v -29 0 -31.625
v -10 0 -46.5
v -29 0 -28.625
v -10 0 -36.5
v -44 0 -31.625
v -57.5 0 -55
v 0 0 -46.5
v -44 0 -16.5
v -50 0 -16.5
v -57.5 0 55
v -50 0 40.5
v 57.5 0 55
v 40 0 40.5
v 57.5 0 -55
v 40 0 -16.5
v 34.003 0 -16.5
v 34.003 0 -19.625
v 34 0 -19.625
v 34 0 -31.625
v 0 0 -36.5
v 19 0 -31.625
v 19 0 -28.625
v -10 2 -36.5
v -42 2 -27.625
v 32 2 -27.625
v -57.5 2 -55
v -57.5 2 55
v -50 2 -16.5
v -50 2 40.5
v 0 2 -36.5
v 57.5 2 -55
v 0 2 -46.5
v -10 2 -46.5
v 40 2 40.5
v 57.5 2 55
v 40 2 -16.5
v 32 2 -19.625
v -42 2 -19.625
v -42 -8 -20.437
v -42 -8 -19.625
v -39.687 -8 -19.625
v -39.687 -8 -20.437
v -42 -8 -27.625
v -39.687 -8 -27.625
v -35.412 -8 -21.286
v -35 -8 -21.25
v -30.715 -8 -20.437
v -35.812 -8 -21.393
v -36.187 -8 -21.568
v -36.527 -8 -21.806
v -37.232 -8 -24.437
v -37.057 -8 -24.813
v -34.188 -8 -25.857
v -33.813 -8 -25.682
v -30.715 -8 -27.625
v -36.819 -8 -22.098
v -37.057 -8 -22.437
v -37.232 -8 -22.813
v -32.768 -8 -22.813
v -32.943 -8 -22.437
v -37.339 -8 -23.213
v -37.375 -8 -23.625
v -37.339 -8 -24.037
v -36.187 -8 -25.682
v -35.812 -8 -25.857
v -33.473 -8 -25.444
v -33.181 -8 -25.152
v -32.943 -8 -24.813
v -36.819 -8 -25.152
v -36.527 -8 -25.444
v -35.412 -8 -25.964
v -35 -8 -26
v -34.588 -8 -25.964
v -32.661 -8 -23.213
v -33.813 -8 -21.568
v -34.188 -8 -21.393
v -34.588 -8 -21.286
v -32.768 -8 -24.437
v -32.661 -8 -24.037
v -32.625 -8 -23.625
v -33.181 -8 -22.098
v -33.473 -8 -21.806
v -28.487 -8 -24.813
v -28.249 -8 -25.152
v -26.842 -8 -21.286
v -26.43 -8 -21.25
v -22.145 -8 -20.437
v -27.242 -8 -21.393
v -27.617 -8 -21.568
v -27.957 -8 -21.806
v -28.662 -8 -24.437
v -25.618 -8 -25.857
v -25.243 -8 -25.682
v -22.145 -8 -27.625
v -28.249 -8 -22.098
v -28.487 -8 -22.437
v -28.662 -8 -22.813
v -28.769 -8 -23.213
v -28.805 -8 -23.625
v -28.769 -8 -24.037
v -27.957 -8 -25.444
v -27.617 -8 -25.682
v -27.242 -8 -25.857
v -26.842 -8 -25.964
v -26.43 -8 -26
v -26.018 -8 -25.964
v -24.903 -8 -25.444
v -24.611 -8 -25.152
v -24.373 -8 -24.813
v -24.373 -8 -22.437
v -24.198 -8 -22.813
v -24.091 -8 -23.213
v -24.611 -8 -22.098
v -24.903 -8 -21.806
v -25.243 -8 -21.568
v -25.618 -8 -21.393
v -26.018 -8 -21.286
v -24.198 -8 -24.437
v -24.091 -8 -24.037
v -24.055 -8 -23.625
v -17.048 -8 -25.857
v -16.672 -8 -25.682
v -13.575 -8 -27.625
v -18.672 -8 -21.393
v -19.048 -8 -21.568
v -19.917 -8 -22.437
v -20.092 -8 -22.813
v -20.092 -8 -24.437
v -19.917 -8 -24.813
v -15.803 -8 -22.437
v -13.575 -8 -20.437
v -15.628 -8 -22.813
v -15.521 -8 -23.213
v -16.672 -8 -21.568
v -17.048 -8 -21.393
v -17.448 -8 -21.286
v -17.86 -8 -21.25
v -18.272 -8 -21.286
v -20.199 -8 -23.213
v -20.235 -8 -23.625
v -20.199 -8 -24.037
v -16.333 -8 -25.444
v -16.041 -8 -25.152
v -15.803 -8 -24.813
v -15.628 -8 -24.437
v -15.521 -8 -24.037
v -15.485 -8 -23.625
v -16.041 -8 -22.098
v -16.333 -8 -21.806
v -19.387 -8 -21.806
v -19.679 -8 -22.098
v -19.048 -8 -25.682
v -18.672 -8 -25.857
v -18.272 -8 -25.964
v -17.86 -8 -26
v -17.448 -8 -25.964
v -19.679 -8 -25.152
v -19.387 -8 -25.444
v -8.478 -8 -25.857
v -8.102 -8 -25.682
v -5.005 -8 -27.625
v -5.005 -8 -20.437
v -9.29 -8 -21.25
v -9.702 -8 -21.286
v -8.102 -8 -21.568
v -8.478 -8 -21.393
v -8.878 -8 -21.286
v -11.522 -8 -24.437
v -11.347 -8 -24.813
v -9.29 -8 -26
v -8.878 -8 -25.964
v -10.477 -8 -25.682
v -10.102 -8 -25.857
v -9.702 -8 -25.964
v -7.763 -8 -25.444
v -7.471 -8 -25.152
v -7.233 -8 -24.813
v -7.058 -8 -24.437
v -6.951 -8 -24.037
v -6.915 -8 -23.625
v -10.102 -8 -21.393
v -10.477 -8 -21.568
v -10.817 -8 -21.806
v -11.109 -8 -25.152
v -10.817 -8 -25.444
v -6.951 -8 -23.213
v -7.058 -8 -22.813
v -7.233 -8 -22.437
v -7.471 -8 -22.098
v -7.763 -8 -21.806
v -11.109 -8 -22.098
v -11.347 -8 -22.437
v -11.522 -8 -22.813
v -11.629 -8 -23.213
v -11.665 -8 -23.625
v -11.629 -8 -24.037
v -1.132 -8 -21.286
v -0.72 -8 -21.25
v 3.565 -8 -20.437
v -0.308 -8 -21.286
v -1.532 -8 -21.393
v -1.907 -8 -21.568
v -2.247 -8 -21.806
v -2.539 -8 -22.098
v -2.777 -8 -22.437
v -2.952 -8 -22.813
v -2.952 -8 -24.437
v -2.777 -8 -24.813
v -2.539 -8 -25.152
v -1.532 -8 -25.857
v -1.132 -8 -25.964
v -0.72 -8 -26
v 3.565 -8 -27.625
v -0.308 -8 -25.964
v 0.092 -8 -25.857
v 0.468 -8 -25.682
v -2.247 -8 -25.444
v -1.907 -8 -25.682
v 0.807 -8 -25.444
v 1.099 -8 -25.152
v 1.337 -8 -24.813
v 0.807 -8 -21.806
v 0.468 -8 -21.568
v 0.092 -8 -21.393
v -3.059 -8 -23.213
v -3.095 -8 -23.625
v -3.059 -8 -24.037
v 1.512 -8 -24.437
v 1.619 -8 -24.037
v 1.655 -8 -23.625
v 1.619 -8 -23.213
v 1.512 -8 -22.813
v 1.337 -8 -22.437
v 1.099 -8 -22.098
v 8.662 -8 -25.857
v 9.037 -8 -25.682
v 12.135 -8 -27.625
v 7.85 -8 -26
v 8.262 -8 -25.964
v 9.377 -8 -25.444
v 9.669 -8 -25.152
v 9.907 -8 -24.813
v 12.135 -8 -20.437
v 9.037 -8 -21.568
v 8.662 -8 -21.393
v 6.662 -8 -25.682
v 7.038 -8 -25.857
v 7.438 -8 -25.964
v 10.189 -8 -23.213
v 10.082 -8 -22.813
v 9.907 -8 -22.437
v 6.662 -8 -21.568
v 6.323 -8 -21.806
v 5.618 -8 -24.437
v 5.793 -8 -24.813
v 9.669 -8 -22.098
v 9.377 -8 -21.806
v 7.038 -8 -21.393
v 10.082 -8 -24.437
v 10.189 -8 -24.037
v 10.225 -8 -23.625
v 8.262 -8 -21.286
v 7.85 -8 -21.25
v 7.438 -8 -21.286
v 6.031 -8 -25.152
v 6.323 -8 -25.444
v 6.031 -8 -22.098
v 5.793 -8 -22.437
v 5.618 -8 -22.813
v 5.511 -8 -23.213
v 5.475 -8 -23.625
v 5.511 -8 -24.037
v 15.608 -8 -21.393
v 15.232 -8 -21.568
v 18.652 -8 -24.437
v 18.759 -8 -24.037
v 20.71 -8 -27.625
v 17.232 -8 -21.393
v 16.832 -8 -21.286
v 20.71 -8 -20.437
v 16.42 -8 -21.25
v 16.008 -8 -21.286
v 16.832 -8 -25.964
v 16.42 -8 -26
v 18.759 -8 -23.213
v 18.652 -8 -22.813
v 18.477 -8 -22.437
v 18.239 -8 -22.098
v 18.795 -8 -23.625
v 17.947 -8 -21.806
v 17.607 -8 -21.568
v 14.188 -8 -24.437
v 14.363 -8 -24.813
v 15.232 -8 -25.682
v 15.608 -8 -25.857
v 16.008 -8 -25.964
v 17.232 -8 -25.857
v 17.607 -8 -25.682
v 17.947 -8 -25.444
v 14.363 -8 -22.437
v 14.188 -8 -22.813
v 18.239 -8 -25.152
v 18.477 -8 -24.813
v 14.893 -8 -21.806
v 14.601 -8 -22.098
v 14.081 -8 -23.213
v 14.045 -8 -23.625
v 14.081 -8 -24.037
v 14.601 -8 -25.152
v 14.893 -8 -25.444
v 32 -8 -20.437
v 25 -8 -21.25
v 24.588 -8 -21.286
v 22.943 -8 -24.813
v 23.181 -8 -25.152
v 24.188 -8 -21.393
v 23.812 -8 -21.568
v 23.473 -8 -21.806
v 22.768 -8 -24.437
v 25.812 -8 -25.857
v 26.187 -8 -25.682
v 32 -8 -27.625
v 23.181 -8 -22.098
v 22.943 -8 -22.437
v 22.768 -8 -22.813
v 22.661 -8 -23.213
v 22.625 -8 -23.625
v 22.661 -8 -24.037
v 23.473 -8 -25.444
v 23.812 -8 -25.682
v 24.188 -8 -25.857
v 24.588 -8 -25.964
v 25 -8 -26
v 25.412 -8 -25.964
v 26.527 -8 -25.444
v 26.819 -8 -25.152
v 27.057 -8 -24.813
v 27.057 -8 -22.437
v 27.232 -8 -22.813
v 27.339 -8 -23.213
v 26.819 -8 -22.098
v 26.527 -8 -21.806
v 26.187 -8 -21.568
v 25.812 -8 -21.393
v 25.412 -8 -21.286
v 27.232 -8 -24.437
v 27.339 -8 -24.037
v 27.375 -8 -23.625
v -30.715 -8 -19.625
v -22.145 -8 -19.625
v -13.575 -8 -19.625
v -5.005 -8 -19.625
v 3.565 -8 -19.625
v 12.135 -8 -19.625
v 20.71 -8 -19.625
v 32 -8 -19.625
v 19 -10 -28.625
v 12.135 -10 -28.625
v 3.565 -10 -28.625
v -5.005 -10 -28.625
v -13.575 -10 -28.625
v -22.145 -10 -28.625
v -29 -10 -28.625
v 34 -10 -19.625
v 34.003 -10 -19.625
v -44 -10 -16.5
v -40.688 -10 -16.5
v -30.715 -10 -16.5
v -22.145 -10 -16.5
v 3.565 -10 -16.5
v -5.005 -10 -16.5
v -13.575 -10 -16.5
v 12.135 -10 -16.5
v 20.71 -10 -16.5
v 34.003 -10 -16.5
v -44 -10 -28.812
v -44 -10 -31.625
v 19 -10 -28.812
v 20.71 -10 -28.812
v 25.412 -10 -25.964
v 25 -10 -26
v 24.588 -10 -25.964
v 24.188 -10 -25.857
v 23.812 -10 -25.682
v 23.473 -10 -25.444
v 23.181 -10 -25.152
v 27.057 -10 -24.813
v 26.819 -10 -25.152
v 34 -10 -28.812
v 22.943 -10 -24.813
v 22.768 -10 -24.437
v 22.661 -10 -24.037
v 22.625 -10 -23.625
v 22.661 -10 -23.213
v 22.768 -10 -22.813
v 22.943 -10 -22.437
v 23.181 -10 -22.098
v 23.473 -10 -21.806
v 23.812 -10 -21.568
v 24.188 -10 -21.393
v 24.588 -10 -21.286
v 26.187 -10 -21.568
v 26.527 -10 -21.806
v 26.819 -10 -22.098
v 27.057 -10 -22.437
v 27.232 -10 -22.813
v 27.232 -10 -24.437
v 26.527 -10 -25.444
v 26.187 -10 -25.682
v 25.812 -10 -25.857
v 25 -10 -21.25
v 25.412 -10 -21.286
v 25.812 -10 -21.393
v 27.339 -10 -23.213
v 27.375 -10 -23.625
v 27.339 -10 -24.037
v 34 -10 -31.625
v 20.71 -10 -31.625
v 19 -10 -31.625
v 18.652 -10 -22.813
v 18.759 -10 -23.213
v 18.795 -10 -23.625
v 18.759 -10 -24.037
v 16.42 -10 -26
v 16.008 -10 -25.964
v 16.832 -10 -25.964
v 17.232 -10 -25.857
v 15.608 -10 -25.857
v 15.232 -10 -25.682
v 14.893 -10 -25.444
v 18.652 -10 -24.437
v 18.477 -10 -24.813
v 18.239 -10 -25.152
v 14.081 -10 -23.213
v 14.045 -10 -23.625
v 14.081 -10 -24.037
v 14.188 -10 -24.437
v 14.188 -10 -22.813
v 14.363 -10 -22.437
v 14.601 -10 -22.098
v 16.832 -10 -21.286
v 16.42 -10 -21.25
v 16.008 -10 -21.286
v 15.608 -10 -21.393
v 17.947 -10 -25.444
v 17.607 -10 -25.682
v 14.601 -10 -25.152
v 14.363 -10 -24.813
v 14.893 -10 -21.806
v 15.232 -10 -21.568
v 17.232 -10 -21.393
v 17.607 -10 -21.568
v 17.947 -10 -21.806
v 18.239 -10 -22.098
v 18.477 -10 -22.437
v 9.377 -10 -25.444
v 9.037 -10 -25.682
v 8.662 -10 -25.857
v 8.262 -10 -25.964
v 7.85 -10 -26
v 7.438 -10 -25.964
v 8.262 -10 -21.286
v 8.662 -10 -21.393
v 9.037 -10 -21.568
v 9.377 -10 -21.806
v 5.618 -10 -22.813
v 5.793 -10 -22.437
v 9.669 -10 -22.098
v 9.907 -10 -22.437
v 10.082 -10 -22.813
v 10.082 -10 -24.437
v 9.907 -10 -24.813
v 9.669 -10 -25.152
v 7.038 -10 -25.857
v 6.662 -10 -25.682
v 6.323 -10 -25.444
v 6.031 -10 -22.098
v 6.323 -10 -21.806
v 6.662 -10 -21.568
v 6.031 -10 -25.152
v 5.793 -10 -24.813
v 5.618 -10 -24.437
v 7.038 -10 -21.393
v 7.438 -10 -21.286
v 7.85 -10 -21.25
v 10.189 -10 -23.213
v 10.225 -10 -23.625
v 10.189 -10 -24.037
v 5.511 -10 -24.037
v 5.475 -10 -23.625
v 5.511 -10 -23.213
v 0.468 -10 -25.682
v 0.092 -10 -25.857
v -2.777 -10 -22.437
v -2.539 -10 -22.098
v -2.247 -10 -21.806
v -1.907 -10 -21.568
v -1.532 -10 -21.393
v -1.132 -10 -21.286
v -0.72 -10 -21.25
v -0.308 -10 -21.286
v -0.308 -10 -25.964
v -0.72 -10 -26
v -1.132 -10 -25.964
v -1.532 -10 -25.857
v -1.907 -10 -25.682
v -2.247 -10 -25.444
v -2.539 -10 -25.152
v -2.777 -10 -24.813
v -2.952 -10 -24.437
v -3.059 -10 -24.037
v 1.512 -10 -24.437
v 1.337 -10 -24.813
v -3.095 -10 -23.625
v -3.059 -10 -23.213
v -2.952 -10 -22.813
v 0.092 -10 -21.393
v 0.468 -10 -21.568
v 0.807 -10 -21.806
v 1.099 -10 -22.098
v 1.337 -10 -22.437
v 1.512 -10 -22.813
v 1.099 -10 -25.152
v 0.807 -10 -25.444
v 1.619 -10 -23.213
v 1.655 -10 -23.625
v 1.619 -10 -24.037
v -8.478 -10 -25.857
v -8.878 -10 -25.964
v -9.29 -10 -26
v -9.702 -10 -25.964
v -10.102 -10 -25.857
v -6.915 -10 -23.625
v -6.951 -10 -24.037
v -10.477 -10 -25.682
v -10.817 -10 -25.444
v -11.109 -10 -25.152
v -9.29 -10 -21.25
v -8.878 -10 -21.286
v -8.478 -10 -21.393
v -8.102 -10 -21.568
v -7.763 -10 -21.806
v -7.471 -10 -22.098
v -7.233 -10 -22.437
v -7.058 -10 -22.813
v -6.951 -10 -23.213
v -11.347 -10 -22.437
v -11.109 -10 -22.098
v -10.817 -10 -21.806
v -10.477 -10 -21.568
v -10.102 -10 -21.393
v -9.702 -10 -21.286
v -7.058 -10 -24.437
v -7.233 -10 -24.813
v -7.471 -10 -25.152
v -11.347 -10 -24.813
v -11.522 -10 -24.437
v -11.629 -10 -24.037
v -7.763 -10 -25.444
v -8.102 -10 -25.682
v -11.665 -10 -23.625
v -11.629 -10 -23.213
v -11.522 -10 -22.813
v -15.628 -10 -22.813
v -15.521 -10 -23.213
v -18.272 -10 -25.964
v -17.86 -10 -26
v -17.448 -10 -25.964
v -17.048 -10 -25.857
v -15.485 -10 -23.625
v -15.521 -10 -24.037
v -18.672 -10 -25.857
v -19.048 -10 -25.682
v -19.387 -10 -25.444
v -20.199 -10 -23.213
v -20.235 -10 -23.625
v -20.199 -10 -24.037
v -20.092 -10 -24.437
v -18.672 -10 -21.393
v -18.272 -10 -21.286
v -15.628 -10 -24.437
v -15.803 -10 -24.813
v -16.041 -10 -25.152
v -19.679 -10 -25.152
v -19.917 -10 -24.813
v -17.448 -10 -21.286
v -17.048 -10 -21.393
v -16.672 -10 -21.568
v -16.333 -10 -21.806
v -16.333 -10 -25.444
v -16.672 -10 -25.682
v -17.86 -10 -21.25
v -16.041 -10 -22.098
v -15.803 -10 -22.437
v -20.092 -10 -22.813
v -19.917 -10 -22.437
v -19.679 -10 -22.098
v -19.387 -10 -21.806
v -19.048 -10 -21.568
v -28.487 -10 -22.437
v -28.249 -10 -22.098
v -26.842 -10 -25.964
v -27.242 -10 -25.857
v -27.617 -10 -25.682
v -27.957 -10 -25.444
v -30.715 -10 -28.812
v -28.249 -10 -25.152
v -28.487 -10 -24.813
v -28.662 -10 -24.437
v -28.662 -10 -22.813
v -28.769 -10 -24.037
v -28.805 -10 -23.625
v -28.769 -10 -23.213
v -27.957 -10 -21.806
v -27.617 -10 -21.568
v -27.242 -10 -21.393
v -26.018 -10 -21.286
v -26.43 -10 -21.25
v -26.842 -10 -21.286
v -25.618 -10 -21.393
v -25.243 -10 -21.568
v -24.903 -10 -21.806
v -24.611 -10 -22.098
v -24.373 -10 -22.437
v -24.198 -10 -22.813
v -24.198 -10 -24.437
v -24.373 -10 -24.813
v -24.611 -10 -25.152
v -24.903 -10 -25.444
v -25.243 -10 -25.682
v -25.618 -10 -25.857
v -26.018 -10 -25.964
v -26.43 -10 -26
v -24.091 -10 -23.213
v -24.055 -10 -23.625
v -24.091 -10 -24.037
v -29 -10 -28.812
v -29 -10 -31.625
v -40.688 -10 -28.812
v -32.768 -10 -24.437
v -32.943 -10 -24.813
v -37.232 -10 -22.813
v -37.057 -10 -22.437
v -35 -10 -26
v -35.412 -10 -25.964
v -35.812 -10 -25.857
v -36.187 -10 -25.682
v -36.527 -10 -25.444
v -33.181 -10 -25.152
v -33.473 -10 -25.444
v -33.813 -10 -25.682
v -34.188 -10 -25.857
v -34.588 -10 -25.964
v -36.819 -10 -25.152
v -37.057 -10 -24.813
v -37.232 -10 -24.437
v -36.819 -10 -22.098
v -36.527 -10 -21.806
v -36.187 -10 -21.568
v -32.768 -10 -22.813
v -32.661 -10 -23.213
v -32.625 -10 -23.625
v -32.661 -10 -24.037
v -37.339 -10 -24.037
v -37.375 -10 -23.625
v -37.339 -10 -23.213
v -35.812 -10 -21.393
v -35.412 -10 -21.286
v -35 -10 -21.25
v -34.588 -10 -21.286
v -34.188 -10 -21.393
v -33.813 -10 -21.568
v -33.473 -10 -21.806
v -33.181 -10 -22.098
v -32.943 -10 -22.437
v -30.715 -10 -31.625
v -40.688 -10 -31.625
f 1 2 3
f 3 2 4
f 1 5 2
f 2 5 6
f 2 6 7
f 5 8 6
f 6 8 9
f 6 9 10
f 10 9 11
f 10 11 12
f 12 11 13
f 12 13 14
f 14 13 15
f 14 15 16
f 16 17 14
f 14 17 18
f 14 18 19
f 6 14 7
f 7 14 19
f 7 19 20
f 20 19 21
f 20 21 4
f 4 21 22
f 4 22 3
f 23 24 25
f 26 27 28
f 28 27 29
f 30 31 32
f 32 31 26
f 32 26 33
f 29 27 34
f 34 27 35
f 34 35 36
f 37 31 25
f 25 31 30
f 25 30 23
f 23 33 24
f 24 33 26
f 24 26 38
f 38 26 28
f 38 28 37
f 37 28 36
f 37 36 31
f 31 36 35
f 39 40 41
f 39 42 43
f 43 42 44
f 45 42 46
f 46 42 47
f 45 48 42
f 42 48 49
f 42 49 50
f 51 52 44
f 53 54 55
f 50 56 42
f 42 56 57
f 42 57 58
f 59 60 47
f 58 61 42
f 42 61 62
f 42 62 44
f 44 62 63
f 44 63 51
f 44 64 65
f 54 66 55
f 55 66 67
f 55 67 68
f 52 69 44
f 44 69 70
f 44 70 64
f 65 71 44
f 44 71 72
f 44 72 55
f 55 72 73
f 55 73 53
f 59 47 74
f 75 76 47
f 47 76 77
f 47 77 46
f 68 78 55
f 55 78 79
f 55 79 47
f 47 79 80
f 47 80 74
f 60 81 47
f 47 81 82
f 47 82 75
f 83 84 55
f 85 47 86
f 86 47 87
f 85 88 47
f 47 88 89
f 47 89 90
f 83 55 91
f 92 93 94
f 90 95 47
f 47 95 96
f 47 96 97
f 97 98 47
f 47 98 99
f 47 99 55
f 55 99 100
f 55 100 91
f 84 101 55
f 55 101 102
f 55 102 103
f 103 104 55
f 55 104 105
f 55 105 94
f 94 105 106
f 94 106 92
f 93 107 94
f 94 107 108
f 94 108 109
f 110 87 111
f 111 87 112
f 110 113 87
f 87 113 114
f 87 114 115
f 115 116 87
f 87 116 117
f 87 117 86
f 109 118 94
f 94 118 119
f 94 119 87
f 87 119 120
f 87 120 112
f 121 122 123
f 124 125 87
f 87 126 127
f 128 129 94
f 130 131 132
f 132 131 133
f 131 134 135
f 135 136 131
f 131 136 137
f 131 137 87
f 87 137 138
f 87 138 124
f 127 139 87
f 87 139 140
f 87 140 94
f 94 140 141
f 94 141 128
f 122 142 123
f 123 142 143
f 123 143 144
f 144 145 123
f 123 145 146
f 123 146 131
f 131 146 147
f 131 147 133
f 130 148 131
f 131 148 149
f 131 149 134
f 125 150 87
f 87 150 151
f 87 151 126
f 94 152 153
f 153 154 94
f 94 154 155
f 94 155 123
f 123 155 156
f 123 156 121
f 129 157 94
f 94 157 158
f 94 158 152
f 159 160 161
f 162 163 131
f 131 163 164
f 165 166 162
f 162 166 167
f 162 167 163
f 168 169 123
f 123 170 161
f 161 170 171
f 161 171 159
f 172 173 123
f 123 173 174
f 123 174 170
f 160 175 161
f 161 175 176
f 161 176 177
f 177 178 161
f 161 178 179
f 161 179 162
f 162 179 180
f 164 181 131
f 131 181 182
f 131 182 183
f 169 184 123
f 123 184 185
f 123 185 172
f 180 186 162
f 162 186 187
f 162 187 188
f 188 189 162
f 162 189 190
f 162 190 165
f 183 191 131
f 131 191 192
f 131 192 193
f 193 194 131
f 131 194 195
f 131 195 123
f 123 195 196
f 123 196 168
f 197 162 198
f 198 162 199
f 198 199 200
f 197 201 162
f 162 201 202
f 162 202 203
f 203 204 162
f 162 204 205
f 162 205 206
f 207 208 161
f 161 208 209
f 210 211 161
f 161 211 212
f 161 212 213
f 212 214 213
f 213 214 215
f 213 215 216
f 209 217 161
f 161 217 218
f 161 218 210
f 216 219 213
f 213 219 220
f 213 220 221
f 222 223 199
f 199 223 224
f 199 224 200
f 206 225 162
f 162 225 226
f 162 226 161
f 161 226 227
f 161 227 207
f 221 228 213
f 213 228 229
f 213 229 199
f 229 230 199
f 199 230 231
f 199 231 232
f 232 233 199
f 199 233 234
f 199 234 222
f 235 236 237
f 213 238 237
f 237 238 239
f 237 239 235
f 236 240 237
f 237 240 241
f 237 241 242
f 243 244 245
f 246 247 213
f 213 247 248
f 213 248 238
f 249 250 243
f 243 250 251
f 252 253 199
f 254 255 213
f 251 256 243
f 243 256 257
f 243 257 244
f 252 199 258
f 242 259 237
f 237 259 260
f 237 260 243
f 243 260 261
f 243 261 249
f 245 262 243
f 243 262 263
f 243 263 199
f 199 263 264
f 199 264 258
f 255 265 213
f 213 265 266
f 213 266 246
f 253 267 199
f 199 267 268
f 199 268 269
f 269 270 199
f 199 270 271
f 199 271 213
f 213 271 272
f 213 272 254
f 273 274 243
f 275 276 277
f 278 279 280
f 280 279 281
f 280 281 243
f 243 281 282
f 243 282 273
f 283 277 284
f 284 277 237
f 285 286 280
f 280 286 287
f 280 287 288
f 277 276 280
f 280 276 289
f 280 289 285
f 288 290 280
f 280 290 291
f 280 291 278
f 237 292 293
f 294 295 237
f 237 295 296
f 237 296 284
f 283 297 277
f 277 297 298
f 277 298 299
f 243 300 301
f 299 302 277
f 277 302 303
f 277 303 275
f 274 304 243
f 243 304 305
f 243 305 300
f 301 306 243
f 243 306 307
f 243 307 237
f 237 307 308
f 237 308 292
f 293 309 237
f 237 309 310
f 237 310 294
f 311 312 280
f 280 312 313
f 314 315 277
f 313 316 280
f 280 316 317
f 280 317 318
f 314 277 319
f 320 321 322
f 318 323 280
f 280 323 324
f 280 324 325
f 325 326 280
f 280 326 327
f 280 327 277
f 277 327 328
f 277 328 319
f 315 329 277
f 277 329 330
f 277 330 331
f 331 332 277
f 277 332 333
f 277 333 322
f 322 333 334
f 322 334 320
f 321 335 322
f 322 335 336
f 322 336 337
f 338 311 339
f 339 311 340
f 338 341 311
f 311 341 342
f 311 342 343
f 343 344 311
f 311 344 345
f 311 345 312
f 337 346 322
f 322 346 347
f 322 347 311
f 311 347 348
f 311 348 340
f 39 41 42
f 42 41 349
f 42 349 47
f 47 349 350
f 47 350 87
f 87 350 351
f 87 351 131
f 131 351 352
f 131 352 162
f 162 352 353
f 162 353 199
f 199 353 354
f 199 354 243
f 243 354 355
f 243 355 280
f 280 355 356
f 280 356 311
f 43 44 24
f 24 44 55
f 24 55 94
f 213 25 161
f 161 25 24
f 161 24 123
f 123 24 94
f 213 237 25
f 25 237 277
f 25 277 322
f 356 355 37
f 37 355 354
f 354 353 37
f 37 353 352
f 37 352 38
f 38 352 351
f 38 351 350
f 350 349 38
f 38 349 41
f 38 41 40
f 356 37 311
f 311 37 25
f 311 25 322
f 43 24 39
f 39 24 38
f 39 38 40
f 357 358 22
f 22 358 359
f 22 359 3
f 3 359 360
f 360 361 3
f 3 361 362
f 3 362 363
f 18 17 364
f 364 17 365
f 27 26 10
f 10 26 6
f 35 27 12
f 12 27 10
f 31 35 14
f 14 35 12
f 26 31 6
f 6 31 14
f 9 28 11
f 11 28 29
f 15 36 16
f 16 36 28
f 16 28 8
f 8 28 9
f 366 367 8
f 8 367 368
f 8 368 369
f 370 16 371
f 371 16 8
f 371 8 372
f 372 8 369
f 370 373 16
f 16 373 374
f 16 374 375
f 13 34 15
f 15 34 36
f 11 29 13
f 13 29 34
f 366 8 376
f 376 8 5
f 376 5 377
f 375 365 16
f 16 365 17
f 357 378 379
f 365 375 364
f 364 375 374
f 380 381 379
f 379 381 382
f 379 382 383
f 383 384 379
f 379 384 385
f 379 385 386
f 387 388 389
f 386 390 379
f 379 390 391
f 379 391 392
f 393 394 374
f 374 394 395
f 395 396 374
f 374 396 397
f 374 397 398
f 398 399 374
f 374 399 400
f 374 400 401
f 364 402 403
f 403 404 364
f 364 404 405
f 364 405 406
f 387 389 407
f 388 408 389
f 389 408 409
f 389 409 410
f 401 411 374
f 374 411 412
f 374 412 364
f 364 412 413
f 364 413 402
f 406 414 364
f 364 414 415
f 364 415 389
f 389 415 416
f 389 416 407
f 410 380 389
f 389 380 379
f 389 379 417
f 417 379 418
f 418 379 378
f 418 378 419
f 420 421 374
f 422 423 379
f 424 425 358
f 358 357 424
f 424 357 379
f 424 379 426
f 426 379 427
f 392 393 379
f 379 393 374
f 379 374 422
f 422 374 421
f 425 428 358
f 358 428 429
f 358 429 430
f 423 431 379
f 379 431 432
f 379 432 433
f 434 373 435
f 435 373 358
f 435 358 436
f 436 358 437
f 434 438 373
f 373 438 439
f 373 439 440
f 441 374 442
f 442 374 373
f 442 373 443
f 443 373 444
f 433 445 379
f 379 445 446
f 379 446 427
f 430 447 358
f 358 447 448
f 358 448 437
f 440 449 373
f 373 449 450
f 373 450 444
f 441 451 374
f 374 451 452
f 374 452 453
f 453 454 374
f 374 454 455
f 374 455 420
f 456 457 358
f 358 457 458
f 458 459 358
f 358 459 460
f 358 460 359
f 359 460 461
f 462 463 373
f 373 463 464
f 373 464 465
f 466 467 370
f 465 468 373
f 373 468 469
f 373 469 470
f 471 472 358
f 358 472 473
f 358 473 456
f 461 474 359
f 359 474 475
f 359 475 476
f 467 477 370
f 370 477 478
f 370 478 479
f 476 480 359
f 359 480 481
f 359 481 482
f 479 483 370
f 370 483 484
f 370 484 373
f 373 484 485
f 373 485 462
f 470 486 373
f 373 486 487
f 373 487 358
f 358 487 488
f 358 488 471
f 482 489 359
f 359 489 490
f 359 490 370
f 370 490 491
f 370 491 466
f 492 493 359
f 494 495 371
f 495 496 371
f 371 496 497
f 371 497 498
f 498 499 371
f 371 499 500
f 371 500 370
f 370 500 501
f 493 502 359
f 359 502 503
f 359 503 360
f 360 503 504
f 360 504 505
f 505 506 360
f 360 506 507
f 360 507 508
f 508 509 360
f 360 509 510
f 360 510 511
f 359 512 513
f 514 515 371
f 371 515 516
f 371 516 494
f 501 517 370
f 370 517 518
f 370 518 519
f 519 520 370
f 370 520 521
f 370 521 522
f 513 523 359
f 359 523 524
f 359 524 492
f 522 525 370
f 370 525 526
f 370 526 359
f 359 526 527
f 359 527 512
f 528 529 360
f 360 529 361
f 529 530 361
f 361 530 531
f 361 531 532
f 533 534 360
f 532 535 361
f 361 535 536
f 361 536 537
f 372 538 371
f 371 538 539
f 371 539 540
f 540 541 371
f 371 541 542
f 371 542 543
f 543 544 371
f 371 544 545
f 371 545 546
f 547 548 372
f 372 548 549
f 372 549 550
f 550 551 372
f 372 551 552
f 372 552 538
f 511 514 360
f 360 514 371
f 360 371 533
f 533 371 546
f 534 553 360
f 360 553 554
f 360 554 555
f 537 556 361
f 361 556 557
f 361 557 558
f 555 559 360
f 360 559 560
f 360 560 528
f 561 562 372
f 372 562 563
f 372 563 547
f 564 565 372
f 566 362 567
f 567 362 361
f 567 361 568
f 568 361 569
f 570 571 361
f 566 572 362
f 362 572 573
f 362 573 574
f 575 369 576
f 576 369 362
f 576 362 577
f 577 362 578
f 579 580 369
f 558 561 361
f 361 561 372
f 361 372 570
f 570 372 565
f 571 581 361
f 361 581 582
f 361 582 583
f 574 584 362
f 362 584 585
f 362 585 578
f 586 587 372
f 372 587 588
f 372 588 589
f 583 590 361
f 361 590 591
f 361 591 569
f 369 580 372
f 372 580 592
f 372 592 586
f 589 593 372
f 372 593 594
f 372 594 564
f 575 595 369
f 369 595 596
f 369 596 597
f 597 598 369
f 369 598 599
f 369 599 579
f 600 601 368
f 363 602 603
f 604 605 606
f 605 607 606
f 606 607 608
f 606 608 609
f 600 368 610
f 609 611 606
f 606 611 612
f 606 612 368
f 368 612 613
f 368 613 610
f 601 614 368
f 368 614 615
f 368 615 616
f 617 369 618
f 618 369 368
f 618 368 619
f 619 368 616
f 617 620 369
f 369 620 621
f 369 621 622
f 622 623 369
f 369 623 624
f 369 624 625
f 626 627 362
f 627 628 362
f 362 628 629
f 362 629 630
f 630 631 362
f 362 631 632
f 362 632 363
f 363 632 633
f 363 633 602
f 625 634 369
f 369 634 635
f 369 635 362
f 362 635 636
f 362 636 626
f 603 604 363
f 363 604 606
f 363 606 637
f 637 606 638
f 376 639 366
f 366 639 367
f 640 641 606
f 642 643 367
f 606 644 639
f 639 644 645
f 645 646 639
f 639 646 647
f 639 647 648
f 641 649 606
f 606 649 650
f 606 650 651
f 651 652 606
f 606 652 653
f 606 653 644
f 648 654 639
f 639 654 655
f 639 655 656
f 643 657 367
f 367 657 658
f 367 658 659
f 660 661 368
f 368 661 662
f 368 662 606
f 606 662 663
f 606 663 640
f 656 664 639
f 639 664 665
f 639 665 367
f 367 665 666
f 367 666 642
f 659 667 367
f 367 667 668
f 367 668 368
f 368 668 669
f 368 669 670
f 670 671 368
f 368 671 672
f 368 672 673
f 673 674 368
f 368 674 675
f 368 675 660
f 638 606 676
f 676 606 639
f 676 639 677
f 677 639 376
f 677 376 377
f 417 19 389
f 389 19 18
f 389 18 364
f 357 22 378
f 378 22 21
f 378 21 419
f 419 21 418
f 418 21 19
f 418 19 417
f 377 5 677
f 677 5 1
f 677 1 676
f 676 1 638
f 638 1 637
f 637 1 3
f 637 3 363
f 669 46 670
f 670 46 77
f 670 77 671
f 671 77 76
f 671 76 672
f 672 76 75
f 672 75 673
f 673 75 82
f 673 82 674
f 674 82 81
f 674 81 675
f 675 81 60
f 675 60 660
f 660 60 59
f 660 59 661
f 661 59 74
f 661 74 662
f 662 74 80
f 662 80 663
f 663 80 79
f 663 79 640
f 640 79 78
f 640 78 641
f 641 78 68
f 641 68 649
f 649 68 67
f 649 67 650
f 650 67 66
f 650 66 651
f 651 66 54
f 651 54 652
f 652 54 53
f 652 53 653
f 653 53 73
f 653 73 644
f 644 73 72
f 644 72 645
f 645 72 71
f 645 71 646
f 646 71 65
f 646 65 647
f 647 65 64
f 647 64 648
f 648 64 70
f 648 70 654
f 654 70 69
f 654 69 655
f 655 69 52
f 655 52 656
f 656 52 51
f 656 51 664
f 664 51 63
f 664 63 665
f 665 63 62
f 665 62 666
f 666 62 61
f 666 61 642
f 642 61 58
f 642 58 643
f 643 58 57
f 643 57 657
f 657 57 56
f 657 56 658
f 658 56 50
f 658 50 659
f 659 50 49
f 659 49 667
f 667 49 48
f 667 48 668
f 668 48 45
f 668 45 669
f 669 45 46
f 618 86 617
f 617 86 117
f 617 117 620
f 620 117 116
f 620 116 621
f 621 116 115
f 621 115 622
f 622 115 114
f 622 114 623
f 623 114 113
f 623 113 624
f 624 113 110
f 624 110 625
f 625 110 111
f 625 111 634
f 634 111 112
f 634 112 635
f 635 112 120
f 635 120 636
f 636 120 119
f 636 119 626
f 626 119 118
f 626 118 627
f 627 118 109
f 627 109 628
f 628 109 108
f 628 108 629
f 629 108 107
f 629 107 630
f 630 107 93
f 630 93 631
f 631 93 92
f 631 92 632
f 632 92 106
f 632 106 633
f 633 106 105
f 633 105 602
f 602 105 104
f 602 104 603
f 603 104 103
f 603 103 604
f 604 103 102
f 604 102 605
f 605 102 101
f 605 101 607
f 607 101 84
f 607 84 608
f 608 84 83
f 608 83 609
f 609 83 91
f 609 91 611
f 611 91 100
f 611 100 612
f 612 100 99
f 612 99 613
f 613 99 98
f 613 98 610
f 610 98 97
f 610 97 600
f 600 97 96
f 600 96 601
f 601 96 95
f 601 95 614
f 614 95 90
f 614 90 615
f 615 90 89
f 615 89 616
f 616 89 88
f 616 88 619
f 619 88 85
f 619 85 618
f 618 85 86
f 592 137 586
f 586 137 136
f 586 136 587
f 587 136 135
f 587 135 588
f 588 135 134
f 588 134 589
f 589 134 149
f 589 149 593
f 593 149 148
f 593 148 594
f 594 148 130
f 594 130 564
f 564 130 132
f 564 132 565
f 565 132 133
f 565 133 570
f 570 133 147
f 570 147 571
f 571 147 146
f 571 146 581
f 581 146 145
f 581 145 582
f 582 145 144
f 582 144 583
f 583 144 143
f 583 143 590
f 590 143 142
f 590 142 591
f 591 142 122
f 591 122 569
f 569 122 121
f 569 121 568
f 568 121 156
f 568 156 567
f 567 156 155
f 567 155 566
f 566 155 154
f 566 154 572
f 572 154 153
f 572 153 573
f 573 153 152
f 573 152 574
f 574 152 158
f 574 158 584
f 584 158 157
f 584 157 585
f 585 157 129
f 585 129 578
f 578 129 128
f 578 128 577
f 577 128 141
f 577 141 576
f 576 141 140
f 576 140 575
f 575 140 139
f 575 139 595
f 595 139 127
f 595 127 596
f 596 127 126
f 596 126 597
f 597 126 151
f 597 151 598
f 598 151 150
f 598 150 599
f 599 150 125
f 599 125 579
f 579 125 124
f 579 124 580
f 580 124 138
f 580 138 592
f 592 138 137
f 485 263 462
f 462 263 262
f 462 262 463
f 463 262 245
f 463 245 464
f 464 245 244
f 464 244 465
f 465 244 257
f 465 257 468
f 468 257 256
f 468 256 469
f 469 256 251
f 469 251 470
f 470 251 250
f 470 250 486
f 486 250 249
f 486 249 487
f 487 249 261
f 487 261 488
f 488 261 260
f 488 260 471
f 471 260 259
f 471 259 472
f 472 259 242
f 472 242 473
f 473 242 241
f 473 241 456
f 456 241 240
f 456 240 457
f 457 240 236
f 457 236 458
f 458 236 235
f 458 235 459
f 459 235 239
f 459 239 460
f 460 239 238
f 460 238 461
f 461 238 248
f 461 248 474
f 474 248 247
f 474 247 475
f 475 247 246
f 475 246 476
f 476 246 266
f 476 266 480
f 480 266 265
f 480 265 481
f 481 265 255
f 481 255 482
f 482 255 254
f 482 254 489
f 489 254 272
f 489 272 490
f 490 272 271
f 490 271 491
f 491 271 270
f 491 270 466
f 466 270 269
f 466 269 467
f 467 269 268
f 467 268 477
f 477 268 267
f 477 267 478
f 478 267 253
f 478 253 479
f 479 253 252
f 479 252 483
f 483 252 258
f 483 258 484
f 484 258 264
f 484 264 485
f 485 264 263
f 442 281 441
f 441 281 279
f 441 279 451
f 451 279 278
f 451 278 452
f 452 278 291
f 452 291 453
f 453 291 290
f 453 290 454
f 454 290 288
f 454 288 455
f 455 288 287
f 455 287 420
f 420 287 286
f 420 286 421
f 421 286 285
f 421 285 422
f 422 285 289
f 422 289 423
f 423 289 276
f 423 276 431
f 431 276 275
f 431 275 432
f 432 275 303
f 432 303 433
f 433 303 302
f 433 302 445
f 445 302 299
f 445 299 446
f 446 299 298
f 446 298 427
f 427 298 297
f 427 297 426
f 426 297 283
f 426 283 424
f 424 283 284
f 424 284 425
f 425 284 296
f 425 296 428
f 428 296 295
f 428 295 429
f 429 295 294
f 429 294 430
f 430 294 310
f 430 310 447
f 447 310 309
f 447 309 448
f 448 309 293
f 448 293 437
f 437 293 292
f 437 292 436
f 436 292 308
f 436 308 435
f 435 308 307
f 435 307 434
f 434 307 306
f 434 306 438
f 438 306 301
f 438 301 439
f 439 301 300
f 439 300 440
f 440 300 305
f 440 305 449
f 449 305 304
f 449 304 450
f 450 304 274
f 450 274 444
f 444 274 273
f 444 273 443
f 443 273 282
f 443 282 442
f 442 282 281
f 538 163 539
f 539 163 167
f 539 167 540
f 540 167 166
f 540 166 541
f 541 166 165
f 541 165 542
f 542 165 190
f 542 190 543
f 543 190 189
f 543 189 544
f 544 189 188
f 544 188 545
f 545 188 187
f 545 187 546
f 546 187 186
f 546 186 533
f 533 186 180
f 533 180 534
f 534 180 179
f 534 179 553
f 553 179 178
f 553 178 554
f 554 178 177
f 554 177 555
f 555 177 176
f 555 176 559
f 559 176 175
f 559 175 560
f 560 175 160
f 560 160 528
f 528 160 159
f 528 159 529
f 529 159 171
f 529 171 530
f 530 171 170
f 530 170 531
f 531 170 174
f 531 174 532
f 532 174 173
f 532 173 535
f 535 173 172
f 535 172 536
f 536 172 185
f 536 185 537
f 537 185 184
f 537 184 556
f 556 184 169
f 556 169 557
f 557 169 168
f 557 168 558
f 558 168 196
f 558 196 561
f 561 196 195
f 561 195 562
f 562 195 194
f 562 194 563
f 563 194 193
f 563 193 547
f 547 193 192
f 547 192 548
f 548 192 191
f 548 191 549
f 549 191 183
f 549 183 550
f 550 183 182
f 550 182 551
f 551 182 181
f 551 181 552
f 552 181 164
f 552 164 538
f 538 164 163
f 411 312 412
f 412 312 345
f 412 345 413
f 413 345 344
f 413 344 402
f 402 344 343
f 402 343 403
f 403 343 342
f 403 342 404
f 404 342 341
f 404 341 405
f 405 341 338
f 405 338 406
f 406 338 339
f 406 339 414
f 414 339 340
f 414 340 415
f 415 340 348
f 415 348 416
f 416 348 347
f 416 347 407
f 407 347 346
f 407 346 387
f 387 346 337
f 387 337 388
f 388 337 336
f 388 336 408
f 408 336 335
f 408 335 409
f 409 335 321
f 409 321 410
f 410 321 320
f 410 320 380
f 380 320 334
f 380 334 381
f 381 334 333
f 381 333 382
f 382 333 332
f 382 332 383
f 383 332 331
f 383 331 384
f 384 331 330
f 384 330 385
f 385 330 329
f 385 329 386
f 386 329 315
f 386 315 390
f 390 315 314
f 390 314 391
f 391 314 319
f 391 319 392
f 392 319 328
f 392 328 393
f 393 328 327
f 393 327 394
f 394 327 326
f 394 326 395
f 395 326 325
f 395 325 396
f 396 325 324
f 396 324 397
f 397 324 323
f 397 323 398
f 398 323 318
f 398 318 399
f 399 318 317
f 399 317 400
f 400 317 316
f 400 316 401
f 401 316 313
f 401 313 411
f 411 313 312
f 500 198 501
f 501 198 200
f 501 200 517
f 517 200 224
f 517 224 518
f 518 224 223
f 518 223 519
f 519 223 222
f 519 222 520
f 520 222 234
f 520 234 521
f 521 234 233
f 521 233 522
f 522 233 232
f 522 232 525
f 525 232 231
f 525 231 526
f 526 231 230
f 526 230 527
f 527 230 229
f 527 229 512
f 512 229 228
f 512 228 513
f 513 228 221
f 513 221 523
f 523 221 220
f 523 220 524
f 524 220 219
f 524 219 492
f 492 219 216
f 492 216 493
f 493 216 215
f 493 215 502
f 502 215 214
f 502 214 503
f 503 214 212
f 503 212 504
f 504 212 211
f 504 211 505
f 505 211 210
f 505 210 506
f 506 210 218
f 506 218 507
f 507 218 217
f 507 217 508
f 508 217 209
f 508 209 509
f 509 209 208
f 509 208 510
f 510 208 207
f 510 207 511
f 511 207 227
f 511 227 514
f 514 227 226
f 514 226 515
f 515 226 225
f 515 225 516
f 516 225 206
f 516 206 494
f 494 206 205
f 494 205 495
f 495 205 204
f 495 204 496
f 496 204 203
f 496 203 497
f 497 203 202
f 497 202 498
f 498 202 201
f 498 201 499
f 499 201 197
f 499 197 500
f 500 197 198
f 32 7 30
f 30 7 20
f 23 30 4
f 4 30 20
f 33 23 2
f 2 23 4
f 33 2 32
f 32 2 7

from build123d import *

# Parameters (mm, degrees)
SKETCH2_W               = 115
SKETCH2_H               = 110
BOSS_EXTRUDE1_DEPTH     = 2
CUT_EXTRUDE1_DEPTH      = 80.594283714
CUT_EXTRUDE1_DEPTH_BACK = 80.594283714
SKETCH3_W               = 90
SKETCH3_H               = 57
SKETCH4_W               = 10
SKETCH4_H               = 10
CUT_EXTRUDE2_DEPTH      = 2
SKETCH5_W               = 78
SKETCH5_H               = 8
CUT_EXTRUDE3_DEPTH      = 80.594283714
SKETCH6_W               = 78.002684591
SKETCH6_H               = 3.125
BOSS_EXTRUDE3_DEPTH     = 10
BOSS_EXTRUDE6_DEPTH     = 10
SKETCH10_W              = 2
SKETCH10_H              = 8
BOSS_EXTRUDE7_DEPTH     = 12
SKETCH11_W              = 2
SKETCH11_H              = 8
BOSS_EXTRUDE8_DEPTH     = 12
SKETCH12_W              = 15
SKETCH12_H              = 3
BOSS_EXTRUDE9_DEPTH     = 10
SKETCH13_W              = 15
SKETCH13_H              = 3
BOSS_EXTRUDE10_DEPTH    = 10
SKETCH14_W              = 74
SKETCH14_H              = 8
BOSS_EXTRUDE11_DEPTH    = 2
SKETCH17_R              = 2.375
CUT_EXTRUDE4_DEPTH      = 81.195074662
SKETCH18_W              = 10
SKETCH18_H              = 10
BOSS_EXTRUDE12_DEPTH    = 2
CUT_EXTRUDE5_DEPTH      = 81.468938107
CUT_EXTRUDE5_DEPTH_BACK = 81.468938107
SKETCH20_W              = 10
SKETCH20_H              = 10


with BuildPart() as part:
    # Sketch2 → Boss-Extrude1 (new body)
    with BuildSketch(Plane(origin=(0, 0, 0), x_dir=(1, 0, 0), z_dir=(0, 1, 0))):
        Rectangle(SKETCH2_W, SKETCH2_H)
    extrude(amount=BOSS_EXTRUDE1_DEPTH)

    # Sketch3 → Cut-Extrude1 (cut, two sides: drawn at the far end of the back side and taken through both)
    with BuildSketch(Plane(origin=(0, 2, 0), x_dir=(1, 0, 0), z_dir=(0, 1, 0)).offset(-CUT_EXTRUDE1_DEPTH_BACK)):
        with Locations((-5, -12)):
            Rectangle(SKETCH3_W, SKETCH3_H)
    extrude(amount=CUT_EXTRUDE1_DEPTH + CUT_EXTRUDE1_DEPTH_BACK, mode=Mode.SUBTRACT)

    # Sketch4 → Cut-Extrude2 (cut)
    with BuildSketch(Plane(origin=(0, 2, 0), x_dir=(1, 0, 0), z_dir=(0, 1, 0))):
        with Locations((-5, 35.75)):
            Rectangle(SKETCH4_W, SKETCH4_H)
    extrude(amount=-CUT_EXTRUDE2_DEPTH, mode=Mode.SUBTRACT)

    # Sketch5 → Cut-Extrude3 (cut, through all)
    with BuildSketch(Plane(origin=(0, 2, 0), x_dir=(1, 0, 0), z_dir=(0, 1, 0))):
        with Locations((-5, 23.625)):
            Rectangle(SKETCH5_W, SKETCH5_H)
    extrude(amount=-CUT_EXTRUDE3_DEPTH, mode=Mode.SUBTRACT)

    # Sketch6 → Boss-Extrude3 (add)
    with BuildSketch(Plane(origin=(0, 0, 0), x_dir=(-1, 0, 0), z_dir=(0, -1, 0))):
        with Locations((4.998657704, 18.0625)):
            Rectangle(SKETCH6_W, SKETCH6_H)
    extrude(amount=BOSS_EXTRUDE3_DEPTH)

    # Sketch8 → Boss-Extrude6 (add)
    with BuildSketch(Plane(origin=(0, 0, 0), x_dir=(-1, 0, 0), z_dir=(0, -1, 0))):
        Polygon((-34, 28.625), (-34, 27.625), (-32, 27.625), (42, 27.625), (44, 27.625), (44, 28.625), (29, 28.625), (-19, 28.625), align=None)
    extrude(amount=BOSS_EXTRUDE6_DEPTH)

    # Sketch10 → Boss-Extrude7 (add)
    with BuildSketch(Plane(origin=(0, 2, 0), x_dir=(1, 0, 0), z_dir=(0, 1, 0))):
        with Locations((33, 23.625)):
            Rectangle(SKETCH10_W, SKETCH10_H)
    extrude(amount=-BOSS_EXTRUDE7_DEPTH)

    # Sketch11 → Boss-Extrude8 (add)
    with BuildSketch(Plane(origin=(0, 2, 0), x_dir=(1, 0, 0), z_dir=(0, 1, 0))):
        with Locations((-43, 23.625)):
            Rectangle(SKETCH11_W, SKETCH11_H)
    extrude(amount=-BOSS_EXTRUDE8_DEPTH)

    # Sketch12 → Boss-Extrude9 (add)
    with BuildSketch(Plane(origin=(0, 0, 0), x_dir=(-1, 0, 0), z_dir=(0, -1, 0))):
        with Locations((-26.5, 30.125)):
            Rectangle(SKETCH12_W, SKETCH12_H)
    extrude(amount=BOSS_EXTRUDE9_DEPTH)

    # Sketch13 → Boss-Extrude10 (add)
    with BuildSketch(Plane(origin=(0, 0, 0), x_dir=(-1, 0, 0), z_dir=(0, -1, 0))):
        with Locations((36.5, 30.125)):
            Rectangle(SKETCH13_W, SKETCH13_H)
    extrude(amount=BOSS_EXTRUDE10_DEPTH)

    # Sketch14 → Boss-Extrude11 (add)
    with BuildSketch(Plane(origin=(0, -10, 0), x_dir=(-1, 0, 0), z_dir=(0, -1, 0))):
        with Locations((5, 23.625)):
            Rectangle(SKETCH14_W, SKETCH14_H)
    extrude(amount=-BOSS_EXTRUDE11_DEPTH)

    # Sketch17 → Cut-Extrude4 (cut, through all)
    with BuildSketch(Plane(origin=(0, -8, 0), x_dir=(1, 0, 0), z_dir=(0, 1, 0))):
        with Locations(Location((25, 23.625, 0), (0, 0, 270))):
            Circle(SKETCH17_R)
        with Locations(Location((-35, 23.625, 0), (0, 0, 270))):
            Circle(SKETCH17_R)
        with Locations(Location((-26.43, 23.625, 0), (0, 0, 270))):
            Circle(SKETCH17_R)
        with Locations(Location((-17.86, 23.625, 0), (0, 0, 270))):
            Circle(SKETCH17_R)
        with Locations(Location((-0.72, 23.625, 0), (0, 0, 270))):
            Circle(SKETCH17_R)
        with Locations(Location((7.85, 23.625, 0), (0, 0, 270))):
            Circle(SKETCH17_R)
        with Locations(Location((16.42, 23.625, 0), (0, 0, 270))):
            Circle(SKETCH17_R)
        with Locations(Location((-9.29, 23.625, 0), (0, 0, 270))):
            Circle(SKETCH17_R)
    extrude(amount=-CUT_EXTRUDE4_DEPTH, mode=Mode.SUBTRACT)

    # Sketch18 → Boss-Extrude12 (add)
    with BuildSketch(Plane(origin=(0, 2, 0), x_dir=(1, 0, 0), z_dir=(0, 1, 0))):
        with Locations((-5, 35.75)):
            Rectangle(SKETCH18_W, SKETCH18_H)
    extrude(amount=-BOSS_EXTRUDE12_DEPTH)

    # Sketch20 → Cut-Extrude5 (cut, two sides: drawn at the far end of the back side and taken through both)
    with BuildSketch(Plane(origin=(0, 2, 0), x_dir=(1, 0, 0), z_dir=(0, 1, 0)).offset(-CUT_EXTRUDE5_DEPTH_BACK)):
        with Locations((-5, 41.5)):
            Rectangle(SKETCH20_W, SKETCH20_H)
    extrude(amount=CUT_EXTRUDE5_DEPTH + CUT_EXTRUDE5_DEPTH_BACK, mode=Mode.SUBTRACT)


solid = part.part
